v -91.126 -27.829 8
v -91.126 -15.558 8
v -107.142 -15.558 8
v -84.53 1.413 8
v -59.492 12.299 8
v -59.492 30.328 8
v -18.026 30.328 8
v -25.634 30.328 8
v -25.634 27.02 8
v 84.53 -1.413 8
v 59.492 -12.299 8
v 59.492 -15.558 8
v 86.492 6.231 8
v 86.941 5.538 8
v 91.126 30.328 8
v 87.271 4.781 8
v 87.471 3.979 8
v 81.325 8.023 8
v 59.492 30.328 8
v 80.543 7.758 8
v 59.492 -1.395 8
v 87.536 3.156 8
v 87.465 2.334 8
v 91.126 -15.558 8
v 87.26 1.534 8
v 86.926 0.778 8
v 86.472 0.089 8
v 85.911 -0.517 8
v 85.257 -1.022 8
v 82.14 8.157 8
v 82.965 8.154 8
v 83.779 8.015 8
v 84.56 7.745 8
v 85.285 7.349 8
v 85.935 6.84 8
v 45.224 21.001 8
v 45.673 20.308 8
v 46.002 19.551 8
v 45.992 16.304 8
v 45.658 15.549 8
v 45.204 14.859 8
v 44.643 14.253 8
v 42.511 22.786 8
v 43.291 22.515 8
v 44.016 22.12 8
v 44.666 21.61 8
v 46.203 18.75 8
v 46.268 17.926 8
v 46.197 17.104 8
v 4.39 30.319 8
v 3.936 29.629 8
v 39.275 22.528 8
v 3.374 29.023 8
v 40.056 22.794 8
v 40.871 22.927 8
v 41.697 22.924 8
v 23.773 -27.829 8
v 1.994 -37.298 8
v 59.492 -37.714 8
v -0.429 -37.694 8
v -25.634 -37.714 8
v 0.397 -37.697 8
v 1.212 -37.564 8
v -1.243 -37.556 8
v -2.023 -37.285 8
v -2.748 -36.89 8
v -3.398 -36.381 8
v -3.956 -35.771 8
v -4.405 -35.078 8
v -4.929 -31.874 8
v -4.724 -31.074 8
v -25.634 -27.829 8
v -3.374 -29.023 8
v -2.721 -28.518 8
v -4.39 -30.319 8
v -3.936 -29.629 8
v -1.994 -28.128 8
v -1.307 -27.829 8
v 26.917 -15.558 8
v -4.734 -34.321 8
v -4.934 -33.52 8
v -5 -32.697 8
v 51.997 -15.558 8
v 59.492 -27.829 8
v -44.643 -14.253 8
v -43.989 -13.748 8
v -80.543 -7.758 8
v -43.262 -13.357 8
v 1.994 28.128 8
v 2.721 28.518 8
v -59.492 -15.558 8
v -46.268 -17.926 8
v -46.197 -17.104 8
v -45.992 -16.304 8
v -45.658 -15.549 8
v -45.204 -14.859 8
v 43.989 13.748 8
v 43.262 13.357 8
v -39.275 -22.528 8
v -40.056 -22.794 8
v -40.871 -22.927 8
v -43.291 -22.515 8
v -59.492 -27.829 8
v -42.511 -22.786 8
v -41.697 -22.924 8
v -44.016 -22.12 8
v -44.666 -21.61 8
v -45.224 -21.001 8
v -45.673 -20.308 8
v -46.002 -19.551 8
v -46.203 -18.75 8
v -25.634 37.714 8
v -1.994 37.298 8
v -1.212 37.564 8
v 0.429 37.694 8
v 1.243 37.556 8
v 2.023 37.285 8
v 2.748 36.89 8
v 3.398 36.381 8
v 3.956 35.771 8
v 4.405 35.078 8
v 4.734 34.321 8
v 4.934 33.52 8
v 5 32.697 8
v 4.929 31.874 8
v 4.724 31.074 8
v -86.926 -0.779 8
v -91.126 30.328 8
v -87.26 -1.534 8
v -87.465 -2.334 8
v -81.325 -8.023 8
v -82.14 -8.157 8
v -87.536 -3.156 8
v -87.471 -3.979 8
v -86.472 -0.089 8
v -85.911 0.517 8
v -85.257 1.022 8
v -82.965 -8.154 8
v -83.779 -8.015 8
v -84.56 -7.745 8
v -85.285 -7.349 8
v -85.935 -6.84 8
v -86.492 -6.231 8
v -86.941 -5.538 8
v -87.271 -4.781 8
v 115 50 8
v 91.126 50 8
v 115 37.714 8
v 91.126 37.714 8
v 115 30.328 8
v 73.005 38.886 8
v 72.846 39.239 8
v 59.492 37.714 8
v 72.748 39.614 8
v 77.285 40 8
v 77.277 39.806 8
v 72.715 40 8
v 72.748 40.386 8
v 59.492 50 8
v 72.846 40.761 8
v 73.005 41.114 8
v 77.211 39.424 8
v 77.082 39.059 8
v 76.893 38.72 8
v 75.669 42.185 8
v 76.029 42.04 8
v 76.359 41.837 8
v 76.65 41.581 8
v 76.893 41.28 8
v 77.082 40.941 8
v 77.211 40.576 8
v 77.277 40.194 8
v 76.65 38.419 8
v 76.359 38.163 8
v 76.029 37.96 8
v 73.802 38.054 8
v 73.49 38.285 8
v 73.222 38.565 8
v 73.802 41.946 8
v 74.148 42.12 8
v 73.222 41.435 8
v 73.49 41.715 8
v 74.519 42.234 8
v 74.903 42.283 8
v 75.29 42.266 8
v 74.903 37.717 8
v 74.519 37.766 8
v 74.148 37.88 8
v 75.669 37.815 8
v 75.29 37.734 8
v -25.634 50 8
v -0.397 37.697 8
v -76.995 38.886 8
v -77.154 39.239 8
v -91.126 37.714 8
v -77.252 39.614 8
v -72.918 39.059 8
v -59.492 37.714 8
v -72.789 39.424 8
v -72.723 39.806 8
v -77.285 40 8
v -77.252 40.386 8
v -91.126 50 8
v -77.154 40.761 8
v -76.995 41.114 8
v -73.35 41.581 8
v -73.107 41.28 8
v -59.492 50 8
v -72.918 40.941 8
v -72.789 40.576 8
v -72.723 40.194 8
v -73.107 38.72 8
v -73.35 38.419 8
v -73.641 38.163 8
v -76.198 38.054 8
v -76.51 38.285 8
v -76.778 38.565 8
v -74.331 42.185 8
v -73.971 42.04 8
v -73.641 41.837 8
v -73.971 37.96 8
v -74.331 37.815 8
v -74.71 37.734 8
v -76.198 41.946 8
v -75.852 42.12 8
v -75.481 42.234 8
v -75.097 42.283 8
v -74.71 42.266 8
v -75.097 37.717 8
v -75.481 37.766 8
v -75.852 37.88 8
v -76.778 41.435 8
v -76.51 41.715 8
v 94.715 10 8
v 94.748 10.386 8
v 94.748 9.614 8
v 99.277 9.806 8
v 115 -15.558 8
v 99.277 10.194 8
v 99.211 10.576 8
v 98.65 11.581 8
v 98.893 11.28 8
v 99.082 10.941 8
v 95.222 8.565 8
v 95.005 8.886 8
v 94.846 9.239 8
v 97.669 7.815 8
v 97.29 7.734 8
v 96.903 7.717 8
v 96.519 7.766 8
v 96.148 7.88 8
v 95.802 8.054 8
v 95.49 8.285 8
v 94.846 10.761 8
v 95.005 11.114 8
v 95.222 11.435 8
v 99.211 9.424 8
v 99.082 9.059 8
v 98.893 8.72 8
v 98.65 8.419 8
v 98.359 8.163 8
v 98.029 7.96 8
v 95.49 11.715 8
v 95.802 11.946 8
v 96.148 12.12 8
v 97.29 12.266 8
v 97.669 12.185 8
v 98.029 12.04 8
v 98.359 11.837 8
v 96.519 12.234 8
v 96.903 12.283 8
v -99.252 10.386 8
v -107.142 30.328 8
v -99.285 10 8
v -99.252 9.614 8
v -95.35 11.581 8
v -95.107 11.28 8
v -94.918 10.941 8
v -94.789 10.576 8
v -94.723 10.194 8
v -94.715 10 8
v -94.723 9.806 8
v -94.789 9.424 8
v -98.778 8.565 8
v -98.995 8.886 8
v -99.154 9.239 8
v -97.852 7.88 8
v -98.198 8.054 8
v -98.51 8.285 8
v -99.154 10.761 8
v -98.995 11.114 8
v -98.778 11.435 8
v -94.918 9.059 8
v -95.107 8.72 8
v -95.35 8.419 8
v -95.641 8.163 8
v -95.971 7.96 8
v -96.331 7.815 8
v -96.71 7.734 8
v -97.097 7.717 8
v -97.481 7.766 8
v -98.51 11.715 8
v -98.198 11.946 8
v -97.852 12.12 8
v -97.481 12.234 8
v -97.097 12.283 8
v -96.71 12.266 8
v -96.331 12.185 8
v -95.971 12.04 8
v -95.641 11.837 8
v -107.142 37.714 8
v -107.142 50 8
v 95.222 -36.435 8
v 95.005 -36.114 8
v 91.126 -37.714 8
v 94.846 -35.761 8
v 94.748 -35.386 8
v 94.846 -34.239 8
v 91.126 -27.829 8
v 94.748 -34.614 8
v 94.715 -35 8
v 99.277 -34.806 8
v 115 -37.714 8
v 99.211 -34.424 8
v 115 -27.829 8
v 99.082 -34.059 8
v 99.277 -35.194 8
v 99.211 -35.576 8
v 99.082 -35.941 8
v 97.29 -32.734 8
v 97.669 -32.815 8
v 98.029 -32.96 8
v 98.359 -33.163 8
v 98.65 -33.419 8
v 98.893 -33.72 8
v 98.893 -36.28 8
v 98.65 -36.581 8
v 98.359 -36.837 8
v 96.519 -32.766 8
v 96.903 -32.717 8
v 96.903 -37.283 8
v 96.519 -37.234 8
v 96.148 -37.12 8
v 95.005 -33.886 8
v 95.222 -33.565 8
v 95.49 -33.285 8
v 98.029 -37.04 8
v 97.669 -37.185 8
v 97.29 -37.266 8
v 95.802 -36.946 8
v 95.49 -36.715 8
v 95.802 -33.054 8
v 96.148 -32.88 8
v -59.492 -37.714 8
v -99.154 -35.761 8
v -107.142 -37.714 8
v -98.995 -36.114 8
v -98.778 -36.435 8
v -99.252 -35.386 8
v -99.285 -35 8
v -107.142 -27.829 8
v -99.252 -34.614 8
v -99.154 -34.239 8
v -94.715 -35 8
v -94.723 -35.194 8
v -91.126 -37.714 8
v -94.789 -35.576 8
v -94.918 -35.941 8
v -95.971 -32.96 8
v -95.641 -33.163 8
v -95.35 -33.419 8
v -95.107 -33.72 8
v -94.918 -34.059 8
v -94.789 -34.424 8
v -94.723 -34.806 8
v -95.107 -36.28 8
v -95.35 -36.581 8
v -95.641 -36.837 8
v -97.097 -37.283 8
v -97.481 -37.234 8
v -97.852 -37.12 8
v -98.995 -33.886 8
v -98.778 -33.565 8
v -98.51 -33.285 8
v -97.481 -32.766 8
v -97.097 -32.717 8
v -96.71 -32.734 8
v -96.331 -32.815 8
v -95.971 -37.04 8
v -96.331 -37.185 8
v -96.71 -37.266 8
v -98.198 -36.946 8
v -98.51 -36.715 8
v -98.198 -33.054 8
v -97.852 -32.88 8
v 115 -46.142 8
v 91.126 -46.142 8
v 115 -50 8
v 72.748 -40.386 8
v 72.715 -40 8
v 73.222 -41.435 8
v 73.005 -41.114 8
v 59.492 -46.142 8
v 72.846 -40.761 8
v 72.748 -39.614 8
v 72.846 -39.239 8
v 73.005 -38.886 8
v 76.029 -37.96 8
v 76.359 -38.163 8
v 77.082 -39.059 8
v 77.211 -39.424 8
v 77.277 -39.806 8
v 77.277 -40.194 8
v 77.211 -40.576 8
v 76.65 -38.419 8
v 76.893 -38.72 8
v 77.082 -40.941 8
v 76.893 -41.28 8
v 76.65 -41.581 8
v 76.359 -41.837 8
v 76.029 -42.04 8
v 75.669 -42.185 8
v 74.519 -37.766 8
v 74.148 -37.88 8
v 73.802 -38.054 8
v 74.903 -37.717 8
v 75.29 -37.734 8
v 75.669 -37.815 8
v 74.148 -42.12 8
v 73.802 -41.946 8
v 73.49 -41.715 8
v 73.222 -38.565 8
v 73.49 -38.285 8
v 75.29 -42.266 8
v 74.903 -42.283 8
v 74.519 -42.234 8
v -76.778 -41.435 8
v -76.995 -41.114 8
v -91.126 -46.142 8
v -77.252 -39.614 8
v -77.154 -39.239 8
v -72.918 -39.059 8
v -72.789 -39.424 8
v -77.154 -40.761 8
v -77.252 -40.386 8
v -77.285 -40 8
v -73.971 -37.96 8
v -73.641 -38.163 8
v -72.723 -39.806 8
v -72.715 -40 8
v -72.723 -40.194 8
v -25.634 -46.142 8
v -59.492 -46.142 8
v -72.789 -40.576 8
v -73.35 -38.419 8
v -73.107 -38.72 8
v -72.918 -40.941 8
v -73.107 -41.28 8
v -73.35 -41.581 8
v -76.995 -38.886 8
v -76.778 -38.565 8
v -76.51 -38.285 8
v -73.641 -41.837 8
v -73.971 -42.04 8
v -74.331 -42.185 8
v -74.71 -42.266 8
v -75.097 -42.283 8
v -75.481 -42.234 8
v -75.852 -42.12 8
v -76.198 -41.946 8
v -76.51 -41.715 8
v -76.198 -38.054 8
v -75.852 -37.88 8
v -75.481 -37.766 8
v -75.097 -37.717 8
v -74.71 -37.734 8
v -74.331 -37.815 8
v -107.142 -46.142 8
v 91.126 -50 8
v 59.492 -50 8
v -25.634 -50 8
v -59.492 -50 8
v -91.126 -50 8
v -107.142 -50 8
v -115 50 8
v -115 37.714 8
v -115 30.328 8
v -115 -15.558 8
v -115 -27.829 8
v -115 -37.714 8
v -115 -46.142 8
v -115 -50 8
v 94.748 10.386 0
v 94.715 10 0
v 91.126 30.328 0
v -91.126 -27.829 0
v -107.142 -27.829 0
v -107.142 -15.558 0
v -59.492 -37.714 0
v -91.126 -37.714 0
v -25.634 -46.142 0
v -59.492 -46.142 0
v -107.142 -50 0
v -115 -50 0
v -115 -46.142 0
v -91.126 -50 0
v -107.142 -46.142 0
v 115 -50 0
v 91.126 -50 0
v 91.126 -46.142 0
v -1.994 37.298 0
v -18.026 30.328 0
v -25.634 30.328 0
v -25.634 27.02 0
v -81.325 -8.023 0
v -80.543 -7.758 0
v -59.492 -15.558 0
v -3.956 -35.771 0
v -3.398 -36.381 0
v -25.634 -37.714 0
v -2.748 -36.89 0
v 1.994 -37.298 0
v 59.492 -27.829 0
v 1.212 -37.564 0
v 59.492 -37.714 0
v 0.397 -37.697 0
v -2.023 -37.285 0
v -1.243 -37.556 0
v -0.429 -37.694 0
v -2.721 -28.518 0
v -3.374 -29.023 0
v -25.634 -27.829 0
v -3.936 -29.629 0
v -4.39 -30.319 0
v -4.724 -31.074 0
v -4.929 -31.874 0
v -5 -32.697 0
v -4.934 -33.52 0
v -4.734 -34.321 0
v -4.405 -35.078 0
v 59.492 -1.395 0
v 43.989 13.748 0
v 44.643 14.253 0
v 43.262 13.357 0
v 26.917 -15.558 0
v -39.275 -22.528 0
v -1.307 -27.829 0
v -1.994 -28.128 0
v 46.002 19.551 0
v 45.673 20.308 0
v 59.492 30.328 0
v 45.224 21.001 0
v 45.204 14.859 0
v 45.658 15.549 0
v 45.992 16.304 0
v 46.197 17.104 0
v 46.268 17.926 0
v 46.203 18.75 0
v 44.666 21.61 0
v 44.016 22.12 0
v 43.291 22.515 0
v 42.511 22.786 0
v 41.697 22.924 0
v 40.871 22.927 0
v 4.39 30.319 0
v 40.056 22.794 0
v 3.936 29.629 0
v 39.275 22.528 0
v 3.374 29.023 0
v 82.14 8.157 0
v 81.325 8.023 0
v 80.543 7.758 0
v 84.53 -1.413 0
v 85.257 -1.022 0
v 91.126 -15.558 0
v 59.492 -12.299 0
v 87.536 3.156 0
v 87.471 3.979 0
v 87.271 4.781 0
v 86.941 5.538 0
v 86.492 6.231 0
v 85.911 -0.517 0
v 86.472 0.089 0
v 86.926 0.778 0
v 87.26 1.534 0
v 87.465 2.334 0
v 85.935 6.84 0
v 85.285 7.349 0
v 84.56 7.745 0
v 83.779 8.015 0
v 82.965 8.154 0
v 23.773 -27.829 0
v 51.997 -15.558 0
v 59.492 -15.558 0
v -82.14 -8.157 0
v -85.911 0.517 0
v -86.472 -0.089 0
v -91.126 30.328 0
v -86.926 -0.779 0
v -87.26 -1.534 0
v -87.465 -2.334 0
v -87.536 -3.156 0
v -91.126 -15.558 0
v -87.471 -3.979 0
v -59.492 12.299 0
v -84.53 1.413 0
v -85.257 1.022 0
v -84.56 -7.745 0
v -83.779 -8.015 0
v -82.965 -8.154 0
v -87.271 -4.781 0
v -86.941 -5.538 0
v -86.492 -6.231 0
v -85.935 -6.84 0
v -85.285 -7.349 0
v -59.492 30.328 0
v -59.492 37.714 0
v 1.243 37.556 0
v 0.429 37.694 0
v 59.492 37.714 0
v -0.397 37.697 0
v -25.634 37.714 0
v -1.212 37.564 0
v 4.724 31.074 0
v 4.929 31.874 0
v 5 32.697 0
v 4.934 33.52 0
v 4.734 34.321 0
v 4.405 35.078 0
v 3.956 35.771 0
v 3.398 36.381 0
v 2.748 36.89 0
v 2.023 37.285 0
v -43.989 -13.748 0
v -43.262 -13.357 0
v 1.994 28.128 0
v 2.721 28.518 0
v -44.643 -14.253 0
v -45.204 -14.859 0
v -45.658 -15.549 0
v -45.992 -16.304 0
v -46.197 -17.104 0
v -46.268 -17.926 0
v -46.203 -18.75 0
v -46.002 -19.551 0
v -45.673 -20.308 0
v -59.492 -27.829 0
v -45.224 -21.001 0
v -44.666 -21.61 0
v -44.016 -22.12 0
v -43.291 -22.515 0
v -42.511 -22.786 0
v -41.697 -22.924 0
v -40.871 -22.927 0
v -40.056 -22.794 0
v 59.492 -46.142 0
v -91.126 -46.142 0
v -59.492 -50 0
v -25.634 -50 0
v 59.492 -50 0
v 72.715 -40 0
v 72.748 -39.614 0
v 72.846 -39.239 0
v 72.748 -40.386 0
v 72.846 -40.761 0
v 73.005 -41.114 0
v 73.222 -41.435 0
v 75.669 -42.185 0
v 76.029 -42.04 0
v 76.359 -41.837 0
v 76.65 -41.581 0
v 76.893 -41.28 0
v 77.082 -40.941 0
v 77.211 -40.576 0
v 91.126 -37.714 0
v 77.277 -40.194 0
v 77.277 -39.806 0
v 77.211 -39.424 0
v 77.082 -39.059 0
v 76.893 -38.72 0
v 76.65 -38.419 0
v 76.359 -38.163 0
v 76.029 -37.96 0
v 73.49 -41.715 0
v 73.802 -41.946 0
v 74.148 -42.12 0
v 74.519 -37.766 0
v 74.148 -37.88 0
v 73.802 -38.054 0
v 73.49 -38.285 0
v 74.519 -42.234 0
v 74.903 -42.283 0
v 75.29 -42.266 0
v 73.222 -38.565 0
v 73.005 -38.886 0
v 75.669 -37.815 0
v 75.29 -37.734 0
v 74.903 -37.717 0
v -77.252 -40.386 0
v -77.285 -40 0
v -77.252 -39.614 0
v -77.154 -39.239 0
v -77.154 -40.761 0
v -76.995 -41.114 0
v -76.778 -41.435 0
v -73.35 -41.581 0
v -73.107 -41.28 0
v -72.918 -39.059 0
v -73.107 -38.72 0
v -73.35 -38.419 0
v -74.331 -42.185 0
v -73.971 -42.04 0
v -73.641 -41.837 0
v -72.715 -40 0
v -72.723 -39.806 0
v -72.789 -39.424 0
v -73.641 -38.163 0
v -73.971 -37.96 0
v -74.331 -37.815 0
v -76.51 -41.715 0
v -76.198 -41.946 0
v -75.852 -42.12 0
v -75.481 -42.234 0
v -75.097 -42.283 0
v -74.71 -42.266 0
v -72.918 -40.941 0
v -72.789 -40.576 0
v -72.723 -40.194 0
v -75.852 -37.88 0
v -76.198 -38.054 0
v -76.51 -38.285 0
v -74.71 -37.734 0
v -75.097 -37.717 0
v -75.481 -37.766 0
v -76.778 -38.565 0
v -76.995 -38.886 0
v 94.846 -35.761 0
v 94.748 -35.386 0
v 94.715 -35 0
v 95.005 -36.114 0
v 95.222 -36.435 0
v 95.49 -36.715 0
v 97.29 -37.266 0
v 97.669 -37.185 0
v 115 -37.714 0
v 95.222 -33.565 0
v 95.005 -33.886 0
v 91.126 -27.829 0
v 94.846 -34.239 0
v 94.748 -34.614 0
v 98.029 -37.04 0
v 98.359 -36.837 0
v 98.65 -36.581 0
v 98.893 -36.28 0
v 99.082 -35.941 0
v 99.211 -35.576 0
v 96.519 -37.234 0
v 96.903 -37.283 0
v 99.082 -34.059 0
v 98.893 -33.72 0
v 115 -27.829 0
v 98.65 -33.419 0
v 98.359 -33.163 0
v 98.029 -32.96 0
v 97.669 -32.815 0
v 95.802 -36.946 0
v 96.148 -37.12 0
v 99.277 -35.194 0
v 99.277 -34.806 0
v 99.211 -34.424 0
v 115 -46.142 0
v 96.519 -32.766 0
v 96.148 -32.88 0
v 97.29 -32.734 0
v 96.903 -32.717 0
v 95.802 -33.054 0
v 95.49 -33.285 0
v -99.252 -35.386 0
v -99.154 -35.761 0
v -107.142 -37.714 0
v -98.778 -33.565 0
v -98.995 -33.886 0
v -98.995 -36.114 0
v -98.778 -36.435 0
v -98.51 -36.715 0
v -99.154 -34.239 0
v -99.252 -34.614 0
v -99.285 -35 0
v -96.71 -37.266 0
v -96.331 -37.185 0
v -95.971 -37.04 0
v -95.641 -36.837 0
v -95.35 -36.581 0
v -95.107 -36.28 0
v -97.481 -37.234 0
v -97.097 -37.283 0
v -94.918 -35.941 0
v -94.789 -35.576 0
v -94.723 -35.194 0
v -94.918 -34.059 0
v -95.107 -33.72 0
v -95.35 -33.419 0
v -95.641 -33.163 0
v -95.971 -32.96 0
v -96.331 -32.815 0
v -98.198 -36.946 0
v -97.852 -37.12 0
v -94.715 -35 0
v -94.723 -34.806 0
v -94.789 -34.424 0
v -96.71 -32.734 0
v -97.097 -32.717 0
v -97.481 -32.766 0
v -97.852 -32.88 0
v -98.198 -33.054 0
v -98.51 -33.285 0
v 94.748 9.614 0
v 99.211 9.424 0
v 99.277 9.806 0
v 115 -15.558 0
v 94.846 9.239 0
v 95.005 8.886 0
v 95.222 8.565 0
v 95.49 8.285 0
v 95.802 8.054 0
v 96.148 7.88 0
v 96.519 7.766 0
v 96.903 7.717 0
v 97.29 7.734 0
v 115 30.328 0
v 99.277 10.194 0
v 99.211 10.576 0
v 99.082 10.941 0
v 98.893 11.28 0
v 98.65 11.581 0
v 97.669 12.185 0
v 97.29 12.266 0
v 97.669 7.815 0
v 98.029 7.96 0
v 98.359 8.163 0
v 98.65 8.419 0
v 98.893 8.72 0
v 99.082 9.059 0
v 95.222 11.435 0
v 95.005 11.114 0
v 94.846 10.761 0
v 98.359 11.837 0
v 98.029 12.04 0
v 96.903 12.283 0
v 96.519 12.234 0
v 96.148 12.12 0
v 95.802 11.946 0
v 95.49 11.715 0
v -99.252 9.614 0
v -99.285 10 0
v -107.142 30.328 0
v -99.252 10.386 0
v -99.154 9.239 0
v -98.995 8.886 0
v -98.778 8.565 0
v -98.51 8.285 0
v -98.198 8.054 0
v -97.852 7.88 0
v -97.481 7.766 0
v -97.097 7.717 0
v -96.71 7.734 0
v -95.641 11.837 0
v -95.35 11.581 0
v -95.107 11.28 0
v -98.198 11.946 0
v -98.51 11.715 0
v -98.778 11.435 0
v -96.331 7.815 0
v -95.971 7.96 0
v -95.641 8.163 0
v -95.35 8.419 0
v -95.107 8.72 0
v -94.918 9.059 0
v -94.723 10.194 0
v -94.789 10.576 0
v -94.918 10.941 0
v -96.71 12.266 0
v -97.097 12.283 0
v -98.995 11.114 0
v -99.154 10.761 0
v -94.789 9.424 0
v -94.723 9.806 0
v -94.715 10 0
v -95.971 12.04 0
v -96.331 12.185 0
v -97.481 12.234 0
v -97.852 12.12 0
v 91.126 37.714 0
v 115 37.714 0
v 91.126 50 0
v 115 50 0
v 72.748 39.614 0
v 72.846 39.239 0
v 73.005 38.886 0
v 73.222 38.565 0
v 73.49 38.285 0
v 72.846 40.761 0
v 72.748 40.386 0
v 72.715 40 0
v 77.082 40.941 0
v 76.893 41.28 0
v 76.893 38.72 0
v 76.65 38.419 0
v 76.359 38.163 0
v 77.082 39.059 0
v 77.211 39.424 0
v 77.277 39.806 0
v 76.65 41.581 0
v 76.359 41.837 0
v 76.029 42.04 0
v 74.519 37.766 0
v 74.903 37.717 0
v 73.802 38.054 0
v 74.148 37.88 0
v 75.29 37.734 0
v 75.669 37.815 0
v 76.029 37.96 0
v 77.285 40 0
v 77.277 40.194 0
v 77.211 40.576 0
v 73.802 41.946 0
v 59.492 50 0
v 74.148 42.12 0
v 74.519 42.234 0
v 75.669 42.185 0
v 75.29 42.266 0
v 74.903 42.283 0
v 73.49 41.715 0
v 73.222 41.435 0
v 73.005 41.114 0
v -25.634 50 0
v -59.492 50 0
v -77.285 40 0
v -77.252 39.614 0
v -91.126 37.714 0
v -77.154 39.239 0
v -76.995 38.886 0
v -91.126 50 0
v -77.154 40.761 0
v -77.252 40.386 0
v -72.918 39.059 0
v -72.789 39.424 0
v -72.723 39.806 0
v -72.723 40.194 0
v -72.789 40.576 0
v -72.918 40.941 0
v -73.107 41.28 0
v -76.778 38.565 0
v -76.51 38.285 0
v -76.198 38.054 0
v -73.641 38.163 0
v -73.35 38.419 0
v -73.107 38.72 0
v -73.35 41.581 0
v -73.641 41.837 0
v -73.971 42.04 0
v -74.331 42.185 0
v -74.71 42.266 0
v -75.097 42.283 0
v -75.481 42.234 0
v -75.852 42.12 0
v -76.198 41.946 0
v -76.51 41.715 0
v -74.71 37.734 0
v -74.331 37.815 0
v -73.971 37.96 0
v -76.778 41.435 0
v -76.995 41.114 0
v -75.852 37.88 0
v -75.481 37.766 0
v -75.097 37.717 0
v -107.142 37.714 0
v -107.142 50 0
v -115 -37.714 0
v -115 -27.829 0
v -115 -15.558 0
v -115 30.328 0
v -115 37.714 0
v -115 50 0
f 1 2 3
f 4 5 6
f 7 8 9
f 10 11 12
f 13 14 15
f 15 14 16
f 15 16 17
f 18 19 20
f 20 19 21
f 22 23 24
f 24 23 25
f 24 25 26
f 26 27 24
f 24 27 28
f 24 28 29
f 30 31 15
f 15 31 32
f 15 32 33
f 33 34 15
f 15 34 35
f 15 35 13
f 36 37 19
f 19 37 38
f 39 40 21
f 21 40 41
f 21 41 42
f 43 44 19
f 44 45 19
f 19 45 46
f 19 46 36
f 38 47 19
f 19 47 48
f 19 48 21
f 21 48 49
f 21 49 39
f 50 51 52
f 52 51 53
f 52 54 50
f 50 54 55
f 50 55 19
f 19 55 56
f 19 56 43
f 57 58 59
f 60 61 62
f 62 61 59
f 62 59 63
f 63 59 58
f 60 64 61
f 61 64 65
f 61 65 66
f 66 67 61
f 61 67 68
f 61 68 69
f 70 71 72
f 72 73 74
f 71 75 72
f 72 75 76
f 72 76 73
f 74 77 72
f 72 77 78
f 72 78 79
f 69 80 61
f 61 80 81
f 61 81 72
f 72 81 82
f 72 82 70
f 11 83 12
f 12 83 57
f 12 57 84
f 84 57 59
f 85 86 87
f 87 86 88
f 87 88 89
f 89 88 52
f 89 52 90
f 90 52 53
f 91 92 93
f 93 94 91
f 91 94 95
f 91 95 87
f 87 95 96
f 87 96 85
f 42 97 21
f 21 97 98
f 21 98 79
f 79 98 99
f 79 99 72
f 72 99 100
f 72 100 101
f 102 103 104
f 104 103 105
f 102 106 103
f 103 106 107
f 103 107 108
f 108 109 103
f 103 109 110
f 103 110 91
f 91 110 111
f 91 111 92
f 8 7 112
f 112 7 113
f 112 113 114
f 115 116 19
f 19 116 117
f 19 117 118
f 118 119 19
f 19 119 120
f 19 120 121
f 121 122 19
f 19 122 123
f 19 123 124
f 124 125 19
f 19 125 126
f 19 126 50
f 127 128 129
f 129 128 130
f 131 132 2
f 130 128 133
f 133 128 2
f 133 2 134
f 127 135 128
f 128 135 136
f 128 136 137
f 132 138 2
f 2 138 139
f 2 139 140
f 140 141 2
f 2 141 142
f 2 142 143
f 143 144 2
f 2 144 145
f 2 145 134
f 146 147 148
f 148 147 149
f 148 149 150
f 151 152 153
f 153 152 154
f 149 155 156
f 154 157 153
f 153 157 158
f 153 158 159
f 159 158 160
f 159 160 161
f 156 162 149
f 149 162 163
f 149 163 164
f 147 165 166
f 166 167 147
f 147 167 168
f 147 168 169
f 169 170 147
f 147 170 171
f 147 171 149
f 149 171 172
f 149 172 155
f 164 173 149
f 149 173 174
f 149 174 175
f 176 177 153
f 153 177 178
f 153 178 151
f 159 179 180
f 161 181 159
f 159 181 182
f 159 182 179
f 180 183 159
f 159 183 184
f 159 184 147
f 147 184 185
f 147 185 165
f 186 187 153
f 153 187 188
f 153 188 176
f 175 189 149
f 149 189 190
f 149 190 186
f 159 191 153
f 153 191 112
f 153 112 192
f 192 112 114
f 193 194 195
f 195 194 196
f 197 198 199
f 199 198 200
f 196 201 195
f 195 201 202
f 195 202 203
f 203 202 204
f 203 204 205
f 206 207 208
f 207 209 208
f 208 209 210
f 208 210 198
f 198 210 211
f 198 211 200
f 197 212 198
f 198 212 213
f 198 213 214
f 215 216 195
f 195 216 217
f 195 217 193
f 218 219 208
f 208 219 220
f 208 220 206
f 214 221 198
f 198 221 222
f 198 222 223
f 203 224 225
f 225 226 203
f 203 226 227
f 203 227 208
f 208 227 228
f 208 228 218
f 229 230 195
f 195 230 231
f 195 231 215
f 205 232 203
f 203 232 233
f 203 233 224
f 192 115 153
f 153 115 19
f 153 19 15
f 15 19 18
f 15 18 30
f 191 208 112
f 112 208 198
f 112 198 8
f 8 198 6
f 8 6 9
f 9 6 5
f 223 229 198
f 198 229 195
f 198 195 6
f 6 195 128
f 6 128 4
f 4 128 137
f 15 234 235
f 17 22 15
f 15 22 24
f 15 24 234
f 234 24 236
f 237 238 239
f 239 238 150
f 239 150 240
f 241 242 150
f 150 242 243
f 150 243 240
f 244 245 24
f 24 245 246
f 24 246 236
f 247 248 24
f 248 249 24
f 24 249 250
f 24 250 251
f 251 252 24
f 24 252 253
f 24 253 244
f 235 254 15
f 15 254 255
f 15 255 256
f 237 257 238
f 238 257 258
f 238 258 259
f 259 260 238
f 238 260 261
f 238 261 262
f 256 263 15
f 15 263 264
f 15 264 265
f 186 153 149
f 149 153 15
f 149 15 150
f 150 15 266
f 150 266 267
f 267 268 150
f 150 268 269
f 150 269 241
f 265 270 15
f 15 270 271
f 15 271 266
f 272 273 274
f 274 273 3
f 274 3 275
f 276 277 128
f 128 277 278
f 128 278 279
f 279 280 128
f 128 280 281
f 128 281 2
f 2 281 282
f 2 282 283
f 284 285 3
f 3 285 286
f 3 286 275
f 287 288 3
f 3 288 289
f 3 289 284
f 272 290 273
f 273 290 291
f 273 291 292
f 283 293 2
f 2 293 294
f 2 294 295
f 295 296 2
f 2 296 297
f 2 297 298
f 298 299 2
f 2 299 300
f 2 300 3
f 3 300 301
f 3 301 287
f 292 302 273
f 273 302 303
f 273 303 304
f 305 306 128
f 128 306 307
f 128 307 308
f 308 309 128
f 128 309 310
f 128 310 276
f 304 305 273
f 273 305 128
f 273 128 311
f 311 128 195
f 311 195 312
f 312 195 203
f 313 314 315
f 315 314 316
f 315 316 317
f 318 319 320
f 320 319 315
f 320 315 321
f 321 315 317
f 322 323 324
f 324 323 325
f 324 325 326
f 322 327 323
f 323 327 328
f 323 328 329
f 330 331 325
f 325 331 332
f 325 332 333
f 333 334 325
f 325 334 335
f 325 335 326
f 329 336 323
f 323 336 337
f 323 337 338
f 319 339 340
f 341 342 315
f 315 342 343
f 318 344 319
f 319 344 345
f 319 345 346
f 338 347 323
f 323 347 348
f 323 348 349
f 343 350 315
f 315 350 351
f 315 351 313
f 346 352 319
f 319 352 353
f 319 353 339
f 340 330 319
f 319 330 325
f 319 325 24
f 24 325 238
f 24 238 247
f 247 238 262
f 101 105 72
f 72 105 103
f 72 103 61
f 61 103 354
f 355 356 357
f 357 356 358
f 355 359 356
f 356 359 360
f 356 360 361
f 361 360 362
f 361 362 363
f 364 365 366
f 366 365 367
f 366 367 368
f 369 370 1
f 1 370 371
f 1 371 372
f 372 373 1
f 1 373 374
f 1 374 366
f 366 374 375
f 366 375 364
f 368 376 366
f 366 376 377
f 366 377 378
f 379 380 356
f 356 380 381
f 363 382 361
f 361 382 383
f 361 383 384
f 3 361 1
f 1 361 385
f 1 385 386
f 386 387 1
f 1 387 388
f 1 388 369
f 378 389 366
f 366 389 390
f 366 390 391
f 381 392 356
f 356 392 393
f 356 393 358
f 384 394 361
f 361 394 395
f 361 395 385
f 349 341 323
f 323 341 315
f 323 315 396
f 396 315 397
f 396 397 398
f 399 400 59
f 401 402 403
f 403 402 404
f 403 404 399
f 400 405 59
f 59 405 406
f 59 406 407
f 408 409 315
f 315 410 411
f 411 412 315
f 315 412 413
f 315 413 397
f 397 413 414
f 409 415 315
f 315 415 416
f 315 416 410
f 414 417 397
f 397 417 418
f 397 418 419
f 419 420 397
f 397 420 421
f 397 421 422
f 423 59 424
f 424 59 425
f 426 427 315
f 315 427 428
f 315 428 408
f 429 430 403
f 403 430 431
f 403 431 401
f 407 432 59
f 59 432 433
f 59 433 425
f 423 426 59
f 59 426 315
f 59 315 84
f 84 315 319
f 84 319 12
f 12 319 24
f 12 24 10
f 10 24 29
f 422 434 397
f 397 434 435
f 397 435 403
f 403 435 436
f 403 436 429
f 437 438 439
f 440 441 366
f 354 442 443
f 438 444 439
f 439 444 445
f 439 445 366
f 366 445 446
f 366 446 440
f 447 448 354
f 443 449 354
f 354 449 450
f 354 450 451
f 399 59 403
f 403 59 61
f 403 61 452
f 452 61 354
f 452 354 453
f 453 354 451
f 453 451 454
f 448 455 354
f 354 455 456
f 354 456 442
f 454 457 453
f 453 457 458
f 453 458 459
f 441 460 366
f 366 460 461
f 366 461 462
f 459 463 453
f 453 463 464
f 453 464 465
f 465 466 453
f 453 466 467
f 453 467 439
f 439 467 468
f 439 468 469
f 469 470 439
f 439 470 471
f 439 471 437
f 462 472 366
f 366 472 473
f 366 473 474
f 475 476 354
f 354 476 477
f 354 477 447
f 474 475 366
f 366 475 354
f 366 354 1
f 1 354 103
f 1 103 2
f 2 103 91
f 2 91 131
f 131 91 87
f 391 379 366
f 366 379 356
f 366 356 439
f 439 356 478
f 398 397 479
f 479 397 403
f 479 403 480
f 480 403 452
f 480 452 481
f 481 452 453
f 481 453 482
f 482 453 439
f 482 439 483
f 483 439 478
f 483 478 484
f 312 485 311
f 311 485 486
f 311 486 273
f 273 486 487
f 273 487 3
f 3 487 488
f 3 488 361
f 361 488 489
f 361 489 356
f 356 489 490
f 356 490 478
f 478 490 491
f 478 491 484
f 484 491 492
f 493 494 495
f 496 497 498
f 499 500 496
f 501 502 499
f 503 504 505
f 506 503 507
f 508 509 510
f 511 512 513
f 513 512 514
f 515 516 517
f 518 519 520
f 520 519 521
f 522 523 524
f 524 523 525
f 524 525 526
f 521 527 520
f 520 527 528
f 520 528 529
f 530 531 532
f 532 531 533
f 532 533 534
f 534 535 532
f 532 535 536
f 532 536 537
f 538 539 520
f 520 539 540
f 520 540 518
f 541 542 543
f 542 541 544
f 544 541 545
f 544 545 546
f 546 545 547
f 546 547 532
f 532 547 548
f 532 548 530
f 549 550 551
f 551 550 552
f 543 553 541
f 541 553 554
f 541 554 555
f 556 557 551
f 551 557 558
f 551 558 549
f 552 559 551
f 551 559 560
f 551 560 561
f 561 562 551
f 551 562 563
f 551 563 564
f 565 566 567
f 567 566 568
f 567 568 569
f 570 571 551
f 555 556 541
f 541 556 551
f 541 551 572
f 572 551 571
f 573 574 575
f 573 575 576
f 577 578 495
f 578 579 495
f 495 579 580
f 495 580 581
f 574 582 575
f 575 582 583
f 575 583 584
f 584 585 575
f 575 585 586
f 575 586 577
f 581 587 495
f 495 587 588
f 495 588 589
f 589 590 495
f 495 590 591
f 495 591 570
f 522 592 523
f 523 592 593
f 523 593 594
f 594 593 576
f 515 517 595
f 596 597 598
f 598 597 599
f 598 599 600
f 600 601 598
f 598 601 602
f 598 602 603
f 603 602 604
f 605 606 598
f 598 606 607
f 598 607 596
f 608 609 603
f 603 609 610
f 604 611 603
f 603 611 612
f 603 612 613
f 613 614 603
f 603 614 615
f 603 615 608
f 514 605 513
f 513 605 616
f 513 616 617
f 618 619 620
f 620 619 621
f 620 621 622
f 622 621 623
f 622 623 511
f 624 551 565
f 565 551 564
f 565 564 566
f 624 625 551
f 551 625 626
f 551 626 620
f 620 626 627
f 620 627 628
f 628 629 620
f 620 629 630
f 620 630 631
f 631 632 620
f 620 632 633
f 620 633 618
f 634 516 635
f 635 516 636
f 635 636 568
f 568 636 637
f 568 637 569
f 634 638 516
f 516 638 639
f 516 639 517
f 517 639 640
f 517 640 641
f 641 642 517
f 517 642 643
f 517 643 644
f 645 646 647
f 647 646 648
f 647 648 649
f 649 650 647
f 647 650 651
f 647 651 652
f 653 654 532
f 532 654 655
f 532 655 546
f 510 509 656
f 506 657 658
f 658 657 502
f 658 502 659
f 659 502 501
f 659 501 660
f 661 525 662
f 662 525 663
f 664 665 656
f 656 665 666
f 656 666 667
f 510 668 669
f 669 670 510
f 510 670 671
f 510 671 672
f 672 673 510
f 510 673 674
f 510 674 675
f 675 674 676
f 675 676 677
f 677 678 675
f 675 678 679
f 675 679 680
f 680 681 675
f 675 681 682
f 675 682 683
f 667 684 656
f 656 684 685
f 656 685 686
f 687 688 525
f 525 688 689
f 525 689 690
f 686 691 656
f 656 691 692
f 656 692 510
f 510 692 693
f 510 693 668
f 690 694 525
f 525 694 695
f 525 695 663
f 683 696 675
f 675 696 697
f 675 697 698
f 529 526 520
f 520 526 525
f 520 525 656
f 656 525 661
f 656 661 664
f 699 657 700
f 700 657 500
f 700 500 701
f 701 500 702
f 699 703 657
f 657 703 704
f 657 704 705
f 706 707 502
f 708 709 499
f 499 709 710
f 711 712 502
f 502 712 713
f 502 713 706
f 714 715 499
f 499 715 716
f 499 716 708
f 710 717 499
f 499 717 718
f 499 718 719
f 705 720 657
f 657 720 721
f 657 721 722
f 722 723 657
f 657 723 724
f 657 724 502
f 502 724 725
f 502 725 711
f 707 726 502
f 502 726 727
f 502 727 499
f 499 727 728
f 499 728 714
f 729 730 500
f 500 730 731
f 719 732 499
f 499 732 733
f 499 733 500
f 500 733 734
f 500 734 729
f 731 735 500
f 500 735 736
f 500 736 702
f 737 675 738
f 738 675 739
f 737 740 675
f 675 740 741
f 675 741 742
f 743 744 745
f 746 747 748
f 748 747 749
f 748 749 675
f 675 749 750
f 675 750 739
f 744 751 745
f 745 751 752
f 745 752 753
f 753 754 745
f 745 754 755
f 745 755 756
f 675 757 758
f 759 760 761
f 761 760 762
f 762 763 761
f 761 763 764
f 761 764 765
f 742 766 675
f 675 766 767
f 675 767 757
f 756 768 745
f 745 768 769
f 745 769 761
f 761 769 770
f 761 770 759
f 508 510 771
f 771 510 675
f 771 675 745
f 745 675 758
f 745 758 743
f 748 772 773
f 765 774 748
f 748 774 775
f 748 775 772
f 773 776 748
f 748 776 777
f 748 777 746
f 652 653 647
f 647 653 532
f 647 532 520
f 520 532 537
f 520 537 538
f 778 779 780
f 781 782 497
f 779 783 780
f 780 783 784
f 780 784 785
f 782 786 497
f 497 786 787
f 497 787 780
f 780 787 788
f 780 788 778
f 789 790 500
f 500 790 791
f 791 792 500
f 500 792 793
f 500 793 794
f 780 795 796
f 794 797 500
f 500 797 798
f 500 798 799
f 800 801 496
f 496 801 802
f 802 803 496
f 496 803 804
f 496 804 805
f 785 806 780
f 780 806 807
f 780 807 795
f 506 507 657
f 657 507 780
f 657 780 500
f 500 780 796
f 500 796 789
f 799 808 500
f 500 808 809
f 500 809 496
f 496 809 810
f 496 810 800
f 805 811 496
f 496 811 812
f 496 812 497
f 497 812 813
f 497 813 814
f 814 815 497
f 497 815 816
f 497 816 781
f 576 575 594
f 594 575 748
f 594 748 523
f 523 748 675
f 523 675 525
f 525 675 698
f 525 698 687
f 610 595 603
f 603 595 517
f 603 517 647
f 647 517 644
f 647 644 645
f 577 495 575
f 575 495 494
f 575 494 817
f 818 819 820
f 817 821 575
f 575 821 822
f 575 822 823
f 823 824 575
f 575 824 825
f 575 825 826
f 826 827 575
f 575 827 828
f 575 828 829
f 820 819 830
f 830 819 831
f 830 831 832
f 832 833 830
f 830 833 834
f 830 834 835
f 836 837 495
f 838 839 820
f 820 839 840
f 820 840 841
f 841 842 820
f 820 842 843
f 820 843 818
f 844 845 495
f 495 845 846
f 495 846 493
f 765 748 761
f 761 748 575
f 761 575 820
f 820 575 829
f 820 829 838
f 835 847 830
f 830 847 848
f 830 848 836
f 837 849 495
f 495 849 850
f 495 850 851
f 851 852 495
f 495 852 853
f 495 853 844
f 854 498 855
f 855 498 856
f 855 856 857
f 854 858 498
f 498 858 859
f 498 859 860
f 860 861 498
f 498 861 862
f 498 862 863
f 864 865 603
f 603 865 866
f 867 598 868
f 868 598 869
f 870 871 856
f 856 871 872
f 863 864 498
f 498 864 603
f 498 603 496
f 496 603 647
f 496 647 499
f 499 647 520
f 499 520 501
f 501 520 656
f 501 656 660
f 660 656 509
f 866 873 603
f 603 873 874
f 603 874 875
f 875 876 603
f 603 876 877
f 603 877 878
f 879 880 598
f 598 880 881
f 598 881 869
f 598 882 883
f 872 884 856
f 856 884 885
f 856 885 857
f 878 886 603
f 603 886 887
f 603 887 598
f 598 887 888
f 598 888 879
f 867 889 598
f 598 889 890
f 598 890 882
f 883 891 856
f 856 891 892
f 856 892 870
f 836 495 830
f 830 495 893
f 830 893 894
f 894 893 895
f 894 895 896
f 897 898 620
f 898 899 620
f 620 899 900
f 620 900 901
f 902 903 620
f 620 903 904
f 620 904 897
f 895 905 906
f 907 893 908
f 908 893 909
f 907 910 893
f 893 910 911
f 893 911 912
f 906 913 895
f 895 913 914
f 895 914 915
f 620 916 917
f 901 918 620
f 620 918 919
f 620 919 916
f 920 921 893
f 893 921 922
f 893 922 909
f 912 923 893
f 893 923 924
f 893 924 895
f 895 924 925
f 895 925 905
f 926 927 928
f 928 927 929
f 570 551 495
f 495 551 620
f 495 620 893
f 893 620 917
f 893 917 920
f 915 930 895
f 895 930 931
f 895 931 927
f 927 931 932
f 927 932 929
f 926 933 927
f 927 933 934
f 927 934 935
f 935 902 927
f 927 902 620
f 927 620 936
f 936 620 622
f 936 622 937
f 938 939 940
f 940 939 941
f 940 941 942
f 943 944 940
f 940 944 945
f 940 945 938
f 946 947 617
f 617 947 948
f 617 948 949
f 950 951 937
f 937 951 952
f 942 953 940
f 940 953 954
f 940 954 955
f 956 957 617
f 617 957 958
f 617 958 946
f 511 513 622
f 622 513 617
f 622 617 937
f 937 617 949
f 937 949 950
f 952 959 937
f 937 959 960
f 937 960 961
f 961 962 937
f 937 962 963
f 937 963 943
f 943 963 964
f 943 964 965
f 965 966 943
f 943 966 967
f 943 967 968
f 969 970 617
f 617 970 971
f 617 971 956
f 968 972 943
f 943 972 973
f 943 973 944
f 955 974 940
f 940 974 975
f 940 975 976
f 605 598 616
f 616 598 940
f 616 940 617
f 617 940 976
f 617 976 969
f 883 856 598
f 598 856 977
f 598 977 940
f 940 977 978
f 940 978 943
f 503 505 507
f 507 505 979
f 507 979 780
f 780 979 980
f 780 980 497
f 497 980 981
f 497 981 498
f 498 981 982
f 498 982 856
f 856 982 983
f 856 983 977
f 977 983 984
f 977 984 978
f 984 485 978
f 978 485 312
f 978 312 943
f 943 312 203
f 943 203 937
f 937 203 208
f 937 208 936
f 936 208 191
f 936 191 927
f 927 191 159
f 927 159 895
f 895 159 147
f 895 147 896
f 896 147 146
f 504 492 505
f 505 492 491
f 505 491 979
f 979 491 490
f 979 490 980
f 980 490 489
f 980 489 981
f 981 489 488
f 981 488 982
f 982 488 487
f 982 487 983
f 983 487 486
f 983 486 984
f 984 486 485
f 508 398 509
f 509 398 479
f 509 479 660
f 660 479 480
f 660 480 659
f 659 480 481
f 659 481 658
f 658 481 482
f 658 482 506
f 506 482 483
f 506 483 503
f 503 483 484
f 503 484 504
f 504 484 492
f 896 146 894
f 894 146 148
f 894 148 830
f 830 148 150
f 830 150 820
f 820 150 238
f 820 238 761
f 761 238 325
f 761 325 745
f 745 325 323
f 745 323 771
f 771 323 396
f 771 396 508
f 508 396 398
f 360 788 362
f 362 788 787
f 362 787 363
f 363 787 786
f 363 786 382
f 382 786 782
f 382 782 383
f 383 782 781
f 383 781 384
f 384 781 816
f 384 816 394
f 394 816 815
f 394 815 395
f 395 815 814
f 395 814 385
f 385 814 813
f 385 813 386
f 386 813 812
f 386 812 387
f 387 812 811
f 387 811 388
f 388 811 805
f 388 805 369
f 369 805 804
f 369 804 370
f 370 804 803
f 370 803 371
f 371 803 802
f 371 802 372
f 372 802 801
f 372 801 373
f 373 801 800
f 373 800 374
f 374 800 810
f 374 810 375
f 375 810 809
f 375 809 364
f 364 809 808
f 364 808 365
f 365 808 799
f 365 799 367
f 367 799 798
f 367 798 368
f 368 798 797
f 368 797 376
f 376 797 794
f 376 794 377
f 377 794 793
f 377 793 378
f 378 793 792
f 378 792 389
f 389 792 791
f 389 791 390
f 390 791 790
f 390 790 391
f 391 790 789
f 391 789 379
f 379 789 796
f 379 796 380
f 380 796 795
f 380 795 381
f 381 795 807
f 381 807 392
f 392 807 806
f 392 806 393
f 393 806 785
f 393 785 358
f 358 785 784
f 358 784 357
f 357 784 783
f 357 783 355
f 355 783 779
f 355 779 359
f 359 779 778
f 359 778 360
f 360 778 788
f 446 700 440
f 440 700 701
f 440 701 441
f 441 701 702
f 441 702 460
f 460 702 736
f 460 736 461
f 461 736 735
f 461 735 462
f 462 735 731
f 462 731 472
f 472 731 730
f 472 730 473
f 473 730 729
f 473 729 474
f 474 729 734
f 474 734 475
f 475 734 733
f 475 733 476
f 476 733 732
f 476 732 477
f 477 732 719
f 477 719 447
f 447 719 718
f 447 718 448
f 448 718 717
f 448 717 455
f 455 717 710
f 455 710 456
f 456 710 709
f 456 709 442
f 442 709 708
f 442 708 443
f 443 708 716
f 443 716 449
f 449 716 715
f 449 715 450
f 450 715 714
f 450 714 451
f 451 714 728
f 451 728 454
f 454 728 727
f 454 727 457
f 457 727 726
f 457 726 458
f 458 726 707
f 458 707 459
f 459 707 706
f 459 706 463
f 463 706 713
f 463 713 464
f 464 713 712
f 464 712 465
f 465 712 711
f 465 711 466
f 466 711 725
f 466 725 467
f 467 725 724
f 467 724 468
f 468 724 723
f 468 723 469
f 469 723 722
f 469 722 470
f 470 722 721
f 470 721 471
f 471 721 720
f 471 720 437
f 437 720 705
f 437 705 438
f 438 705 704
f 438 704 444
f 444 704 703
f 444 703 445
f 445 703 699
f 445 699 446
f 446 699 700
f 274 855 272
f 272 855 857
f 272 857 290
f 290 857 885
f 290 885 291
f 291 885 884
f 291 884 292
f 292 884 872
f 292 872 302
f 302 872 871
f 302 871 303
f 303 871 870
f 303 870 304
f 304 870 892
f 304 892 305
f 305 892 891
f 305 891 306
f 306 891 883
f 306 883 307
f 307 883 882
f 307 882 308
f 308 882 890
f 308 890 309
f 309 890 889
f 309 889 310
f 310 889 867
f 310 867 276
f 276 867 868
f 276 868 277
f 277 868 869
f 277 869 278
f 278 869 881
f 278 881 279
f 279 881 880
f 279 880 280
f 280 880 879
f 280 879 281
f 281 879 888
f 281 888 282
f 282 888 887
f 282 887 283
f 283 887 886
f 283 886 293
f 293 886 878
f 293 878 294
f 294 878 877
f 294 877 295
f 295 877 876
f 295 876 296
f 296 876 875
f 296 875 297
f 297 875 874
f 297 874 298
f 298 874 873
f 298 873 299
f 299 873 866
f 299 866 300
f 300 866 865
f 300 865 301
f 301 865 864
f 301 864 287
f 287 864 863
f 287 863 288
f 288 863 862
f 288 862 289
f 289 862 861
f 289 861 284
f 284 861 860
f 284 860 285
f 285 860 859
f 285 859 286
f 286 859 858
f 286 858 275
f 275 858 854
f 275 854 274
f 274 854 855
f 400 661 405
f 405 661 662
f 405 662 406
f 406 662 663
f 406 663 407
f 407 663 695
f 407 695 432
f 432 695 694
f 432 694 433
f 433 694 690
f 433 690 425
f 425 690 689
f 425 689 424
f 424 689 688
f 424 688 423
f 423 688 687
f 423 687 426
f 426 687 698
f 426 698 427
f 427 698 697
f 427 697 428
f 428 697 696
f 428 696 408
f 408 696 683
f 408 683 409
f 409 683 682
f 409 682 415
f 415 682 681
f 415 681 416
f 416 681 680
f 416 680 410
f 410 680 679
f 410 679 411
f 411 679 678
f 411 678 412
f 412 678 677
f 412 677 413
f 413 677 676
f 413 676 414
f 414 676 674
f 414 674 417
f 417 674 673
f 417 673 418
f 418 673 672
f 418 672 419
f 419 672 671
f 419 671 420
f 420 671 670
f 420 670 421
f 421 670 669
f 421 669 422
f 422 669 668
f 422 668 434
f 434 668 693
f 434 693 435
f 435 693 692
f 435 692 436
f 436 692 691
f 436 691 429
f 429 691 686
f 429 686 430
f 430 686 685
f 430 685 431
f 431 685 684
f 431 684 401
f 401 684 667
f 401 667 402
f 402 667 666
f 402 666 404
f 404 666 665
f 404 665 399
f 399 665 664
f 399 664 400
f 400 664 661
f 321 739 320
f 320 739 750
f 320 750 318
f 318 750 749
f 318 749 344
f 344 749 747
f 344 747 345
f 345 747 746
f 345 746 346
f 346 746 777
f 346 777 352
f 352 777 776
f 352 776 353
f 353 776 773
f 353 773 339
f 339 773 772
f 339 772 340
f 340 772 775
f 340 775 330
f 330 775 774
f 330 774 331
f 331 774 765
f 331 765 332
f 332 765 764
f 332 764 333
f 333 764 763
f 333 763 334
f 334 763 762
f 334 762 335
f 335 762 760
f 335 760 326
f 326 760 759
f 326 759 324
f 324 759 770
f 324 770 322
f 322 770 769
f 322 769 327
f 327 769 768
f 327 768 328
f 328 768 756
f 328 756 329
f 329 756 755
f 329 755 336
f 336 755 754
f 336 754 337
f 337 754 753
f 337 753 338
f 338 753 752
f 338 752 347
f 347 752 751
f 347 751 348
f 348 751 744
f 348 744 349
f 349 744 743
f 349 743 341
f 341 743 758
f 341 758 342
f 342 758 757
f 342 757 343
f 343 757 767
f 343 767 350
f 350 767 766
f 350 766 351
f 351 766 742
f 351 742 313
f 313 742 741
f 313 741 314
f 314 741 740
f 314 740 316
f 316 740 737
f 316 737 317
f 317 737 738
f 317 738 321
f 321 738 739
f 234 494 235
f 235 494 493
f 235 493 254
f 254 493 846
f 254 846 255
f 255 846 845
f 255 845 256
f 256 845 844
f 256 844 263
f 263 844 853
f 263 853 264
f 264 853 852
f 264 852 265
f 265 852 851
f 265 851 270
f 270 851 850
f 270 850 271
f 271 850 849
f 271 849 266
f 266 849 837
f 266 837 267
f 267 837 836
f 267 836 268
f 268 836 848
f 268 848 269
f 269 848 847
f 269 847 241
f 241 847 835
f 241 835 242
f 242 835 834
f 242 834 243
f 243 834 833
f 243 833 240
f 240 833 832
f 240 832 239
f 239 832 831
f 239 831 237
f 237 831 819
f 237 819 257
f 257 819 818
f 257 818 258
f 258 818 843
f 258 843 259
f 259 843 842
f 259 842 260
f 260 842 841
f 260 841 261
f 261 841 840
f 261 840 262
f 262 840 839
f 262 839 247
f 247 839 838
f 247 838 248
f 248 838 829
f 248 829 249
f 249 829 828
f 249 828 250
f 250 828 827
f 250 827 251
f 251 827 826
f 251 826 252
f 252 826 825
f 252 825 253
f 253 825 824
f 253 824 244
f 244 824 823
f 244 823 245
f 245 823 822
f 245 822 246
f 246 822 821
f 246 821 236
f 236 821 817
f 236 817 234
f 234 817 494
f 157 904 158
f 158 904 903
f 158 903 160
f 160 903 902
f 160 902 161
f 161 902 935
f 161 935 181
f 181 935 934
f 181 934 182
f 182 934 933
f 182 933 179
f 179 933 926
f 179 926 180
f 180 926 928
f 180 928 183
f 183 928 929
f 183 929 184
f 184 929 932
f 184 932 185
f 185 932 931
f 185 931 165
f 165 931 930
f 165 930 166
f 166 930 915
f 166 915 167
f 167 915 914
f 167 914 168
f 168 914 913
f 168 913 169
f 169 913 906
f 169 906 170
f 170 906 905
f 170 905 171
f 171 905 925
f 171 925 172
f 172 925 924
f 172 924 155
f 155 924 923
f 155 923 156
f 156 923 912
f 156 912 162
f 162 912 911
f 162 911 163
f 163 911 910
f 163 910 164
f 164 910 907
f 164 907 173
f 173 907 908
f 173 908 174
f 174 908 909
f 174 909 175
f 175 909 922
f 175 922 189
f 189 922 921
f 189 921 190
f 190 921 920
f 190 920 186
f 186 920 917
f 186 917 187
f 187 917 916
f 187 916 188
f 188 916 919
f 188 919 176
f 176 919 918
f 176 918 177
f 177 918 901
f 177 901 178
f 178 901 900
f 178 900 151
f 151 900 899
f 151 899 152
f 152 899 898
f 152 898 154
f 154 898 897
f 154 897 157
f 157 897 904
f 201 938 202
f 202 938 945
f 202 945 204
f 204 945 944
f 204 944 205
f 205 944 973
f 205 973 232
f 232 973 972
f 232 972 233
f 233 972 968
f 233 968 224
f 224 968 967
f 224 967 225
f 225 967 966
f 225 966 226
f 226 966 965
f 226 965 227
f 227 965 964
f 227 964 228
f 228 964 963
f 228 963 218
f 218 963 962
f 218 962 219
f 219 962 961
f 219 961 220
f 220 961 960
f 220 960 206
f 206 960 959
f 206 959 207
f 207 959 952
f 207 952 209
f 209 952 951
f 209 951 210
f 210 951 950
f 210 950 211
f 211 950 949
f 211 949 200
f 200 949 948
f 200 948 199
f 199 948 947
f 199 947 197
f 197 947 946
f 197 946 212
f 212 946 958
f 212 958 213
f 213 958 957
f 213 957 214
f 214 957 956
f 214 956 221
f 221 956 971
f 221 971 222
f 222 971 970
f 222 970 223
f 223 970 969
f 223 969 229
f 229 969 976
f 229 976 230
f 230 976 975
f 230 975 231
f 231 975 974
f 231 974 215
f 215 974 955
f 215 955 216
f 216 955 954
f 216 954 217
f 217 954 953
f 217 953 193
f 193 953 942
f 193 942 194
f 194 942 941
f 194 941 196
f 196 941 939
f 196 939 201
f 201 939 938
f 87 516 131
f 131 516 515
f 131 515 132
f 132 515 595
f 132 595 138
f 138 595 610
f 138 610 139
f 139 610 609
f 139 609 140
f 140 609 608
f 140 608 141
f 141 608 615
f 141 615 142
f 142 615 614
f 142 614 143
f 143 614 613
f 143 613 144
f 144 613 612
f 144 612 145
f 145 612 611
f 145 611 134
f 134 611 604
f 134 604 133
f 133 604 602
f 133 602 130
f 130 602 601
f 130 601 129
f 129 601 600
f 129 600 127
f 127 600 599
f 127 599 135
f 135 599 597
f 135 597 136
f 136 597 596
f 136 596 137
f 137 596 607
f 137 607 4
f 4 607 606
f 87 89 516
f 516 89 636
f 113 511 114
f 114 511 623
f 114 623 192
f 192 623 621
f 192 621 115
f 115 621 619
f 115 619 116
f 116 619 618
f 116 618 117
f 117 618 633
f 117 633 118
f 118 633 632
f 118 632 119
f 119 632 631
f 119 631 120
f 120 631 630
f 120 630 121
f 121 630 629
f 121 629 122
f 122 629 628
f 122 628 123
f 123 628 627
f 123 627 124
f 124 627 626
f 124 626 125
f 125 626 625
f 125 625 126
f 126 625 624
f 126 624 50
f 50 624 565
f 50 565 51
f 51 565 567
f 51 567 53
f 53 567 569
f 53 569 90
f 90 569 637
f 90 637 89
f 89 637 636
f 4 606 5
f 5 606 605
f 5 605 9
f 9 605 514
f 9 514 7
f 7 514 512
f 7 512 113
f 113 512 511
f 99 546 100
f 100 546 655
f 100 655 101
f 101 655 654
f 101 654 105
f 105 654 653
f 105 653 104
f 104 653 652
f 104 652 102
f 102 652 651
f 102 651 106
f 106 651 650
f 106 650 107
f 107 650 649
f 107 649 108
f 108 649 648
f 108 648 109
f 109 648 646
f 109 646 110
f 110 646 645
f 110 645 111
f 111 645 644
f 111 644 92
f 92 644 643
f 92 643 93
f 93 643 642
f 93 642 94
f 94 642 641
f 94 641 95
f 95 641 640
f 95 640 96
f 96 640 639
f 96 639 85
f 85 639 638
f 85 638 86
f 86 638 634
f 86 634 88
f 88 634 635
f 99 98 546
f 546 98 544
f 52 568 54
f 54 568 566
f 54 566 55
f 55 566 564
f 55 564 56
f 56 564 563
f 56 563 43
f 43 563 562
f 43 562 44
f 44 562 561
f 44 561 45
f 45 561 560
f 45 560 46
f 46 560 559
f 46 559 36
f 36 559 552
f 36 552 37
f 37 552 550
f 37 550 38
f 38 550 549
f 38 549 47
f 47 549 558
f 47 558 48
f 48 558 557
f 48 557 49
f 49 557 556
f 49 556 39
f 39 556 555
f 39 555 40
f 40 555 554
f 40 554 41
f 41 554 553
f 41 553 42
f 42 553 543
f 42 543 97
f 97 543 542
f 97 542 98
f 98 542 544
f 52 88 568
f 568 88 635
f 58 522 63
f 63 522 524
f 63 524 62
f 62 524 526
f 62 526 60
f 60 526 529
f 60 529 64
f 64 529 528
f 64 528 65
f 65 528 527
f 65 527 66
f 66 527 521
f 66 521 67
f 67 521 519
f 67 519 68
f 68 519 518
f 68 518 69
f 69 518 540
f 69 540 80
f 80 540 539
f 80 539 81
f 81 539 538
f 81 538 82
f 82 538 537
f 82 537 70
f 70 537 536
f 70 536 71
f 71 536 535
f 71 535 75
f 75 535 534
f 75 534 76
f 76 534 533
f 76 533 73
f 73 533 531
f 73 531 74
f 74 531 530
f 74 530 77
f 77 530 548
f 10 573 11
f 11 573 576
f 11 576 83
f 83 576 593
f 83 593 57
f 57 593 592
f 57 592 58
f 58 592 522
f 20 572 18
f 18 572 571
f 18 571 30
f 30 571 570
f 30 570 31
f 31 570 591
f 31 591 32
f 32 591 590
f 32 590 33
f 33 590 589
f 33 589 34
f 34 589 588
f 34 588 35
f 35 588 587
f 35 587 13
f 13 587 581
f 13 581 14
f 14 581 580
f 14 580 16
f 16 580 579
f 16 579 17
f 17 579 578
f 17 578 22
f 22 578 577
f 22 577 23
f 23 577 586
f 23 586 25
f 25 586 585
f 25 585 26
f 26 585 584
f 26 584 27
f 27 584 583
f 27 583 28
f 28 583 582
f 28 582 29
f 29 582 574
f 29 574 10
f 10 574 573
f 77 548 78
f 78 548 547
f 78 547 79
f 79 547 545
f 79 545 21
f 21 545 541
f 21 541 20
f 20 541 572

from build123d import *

# Parameters (mm, degrees)
SKETCH1_W           = 230
SKETCH1_H           = 100
SKETCH1_R           = 2.285
BOSS_EXTRUDE1_DEPTH = 8


with BuildPart() as part:
    # Sketch1 → Boss-Extrude1 (new body)
    with BuildSketch(Plane.XY):
        Rectangle(SKETCH1_W, SKETCH1_H)
        with Locations((-97, 10)):
            Circle(SKETCH1_R, mode=Mode.SUBTRACT)
        with Locations((-97, -35)):
            Circle(SKETCH1_R, mode=Mode.SUBTRACT)
        with Locations((-75, -40)):
            Circle(SKETCH1_R, mode=Mode.SUBTRACT)
        with Locations(Location((75, -40, 0), (0, 0, 180))):
            Circle(SKETCH1_R, mode=Mode.SUBTRACT)
        with Locations(Location((97, -35, 0), (0, 0, 180))):
            Circle(SKETCH1_R, mode=Mode.SUBTRACT)
        with Locations(Location((97, 10, 0), (0, 0, 180))):
            Circle(SKETCH1_R, mode=Mode.SUBTRACT)
        with Locations((75, 40)):
            Circle(SKETCH1_R, mode=Mode.SUBTRACT)
        with Locations(Location((-75, 40, 0), (0, 0, 180))):
            Circle(SKETCH1_R, mode=Mode.SUBTRACT)
        with BuildLine():
            Line((-84.52993562, 1.412877308), (-1.993630557, 37.298227335))
            ThreePointArc((-1.993630557, 37.298227335), (4.585350281, 34.706507611), (1.993630557, 28.127526773))
            Line((1.993630557, 28.127526773), (-80.542674506, -7.757823255))
            ThreePointArc((-80.542674506, -7.757823255), (-87.121655344, -5.166103531), (-84.52993562, 1.412877308))
        make_face(mode=Mode.SUBTRACT)
        with BuildLine():
            Line((-43.261783088, -13.357324732), (39.274521974, 22.528025295))
            ThreePointArc((39.274521974, 22.528025295), (45.853502813, 19.936305571), (43.261783088, 13.357324732))
            Line((43.261783088, 13.357324732), (-39.274521974, -22.528025295))
            ThreePointArc((-39.274521974, -22.528025295), (-45.853502813, -19.936305571), (-43.261783088, -13.357324732))
        make_face(mode=Mode.SUBTRACT)
        with BuildLine():
            Line((-1.993630557, -28.127526773), (80.542674506, 7.757823255))
            ThreePointArc((80.542674506, 7.757823255), (87.121655344, 5.166103531), (84.52993562, -1.412877308))
            Line((84.52993562, -1.412877308), (1.993630557, -37.298227335))
            ThreePointArc((1.993630557, -37.298227335), (-4.585350281, -34.706507611), (-1.993630557, -28.127526773))
        make_face(mode=Mode.SUBTRACT)
    extrude(amount=BOSS_EXTRUDE1_DEPTH)


solid = part.part
